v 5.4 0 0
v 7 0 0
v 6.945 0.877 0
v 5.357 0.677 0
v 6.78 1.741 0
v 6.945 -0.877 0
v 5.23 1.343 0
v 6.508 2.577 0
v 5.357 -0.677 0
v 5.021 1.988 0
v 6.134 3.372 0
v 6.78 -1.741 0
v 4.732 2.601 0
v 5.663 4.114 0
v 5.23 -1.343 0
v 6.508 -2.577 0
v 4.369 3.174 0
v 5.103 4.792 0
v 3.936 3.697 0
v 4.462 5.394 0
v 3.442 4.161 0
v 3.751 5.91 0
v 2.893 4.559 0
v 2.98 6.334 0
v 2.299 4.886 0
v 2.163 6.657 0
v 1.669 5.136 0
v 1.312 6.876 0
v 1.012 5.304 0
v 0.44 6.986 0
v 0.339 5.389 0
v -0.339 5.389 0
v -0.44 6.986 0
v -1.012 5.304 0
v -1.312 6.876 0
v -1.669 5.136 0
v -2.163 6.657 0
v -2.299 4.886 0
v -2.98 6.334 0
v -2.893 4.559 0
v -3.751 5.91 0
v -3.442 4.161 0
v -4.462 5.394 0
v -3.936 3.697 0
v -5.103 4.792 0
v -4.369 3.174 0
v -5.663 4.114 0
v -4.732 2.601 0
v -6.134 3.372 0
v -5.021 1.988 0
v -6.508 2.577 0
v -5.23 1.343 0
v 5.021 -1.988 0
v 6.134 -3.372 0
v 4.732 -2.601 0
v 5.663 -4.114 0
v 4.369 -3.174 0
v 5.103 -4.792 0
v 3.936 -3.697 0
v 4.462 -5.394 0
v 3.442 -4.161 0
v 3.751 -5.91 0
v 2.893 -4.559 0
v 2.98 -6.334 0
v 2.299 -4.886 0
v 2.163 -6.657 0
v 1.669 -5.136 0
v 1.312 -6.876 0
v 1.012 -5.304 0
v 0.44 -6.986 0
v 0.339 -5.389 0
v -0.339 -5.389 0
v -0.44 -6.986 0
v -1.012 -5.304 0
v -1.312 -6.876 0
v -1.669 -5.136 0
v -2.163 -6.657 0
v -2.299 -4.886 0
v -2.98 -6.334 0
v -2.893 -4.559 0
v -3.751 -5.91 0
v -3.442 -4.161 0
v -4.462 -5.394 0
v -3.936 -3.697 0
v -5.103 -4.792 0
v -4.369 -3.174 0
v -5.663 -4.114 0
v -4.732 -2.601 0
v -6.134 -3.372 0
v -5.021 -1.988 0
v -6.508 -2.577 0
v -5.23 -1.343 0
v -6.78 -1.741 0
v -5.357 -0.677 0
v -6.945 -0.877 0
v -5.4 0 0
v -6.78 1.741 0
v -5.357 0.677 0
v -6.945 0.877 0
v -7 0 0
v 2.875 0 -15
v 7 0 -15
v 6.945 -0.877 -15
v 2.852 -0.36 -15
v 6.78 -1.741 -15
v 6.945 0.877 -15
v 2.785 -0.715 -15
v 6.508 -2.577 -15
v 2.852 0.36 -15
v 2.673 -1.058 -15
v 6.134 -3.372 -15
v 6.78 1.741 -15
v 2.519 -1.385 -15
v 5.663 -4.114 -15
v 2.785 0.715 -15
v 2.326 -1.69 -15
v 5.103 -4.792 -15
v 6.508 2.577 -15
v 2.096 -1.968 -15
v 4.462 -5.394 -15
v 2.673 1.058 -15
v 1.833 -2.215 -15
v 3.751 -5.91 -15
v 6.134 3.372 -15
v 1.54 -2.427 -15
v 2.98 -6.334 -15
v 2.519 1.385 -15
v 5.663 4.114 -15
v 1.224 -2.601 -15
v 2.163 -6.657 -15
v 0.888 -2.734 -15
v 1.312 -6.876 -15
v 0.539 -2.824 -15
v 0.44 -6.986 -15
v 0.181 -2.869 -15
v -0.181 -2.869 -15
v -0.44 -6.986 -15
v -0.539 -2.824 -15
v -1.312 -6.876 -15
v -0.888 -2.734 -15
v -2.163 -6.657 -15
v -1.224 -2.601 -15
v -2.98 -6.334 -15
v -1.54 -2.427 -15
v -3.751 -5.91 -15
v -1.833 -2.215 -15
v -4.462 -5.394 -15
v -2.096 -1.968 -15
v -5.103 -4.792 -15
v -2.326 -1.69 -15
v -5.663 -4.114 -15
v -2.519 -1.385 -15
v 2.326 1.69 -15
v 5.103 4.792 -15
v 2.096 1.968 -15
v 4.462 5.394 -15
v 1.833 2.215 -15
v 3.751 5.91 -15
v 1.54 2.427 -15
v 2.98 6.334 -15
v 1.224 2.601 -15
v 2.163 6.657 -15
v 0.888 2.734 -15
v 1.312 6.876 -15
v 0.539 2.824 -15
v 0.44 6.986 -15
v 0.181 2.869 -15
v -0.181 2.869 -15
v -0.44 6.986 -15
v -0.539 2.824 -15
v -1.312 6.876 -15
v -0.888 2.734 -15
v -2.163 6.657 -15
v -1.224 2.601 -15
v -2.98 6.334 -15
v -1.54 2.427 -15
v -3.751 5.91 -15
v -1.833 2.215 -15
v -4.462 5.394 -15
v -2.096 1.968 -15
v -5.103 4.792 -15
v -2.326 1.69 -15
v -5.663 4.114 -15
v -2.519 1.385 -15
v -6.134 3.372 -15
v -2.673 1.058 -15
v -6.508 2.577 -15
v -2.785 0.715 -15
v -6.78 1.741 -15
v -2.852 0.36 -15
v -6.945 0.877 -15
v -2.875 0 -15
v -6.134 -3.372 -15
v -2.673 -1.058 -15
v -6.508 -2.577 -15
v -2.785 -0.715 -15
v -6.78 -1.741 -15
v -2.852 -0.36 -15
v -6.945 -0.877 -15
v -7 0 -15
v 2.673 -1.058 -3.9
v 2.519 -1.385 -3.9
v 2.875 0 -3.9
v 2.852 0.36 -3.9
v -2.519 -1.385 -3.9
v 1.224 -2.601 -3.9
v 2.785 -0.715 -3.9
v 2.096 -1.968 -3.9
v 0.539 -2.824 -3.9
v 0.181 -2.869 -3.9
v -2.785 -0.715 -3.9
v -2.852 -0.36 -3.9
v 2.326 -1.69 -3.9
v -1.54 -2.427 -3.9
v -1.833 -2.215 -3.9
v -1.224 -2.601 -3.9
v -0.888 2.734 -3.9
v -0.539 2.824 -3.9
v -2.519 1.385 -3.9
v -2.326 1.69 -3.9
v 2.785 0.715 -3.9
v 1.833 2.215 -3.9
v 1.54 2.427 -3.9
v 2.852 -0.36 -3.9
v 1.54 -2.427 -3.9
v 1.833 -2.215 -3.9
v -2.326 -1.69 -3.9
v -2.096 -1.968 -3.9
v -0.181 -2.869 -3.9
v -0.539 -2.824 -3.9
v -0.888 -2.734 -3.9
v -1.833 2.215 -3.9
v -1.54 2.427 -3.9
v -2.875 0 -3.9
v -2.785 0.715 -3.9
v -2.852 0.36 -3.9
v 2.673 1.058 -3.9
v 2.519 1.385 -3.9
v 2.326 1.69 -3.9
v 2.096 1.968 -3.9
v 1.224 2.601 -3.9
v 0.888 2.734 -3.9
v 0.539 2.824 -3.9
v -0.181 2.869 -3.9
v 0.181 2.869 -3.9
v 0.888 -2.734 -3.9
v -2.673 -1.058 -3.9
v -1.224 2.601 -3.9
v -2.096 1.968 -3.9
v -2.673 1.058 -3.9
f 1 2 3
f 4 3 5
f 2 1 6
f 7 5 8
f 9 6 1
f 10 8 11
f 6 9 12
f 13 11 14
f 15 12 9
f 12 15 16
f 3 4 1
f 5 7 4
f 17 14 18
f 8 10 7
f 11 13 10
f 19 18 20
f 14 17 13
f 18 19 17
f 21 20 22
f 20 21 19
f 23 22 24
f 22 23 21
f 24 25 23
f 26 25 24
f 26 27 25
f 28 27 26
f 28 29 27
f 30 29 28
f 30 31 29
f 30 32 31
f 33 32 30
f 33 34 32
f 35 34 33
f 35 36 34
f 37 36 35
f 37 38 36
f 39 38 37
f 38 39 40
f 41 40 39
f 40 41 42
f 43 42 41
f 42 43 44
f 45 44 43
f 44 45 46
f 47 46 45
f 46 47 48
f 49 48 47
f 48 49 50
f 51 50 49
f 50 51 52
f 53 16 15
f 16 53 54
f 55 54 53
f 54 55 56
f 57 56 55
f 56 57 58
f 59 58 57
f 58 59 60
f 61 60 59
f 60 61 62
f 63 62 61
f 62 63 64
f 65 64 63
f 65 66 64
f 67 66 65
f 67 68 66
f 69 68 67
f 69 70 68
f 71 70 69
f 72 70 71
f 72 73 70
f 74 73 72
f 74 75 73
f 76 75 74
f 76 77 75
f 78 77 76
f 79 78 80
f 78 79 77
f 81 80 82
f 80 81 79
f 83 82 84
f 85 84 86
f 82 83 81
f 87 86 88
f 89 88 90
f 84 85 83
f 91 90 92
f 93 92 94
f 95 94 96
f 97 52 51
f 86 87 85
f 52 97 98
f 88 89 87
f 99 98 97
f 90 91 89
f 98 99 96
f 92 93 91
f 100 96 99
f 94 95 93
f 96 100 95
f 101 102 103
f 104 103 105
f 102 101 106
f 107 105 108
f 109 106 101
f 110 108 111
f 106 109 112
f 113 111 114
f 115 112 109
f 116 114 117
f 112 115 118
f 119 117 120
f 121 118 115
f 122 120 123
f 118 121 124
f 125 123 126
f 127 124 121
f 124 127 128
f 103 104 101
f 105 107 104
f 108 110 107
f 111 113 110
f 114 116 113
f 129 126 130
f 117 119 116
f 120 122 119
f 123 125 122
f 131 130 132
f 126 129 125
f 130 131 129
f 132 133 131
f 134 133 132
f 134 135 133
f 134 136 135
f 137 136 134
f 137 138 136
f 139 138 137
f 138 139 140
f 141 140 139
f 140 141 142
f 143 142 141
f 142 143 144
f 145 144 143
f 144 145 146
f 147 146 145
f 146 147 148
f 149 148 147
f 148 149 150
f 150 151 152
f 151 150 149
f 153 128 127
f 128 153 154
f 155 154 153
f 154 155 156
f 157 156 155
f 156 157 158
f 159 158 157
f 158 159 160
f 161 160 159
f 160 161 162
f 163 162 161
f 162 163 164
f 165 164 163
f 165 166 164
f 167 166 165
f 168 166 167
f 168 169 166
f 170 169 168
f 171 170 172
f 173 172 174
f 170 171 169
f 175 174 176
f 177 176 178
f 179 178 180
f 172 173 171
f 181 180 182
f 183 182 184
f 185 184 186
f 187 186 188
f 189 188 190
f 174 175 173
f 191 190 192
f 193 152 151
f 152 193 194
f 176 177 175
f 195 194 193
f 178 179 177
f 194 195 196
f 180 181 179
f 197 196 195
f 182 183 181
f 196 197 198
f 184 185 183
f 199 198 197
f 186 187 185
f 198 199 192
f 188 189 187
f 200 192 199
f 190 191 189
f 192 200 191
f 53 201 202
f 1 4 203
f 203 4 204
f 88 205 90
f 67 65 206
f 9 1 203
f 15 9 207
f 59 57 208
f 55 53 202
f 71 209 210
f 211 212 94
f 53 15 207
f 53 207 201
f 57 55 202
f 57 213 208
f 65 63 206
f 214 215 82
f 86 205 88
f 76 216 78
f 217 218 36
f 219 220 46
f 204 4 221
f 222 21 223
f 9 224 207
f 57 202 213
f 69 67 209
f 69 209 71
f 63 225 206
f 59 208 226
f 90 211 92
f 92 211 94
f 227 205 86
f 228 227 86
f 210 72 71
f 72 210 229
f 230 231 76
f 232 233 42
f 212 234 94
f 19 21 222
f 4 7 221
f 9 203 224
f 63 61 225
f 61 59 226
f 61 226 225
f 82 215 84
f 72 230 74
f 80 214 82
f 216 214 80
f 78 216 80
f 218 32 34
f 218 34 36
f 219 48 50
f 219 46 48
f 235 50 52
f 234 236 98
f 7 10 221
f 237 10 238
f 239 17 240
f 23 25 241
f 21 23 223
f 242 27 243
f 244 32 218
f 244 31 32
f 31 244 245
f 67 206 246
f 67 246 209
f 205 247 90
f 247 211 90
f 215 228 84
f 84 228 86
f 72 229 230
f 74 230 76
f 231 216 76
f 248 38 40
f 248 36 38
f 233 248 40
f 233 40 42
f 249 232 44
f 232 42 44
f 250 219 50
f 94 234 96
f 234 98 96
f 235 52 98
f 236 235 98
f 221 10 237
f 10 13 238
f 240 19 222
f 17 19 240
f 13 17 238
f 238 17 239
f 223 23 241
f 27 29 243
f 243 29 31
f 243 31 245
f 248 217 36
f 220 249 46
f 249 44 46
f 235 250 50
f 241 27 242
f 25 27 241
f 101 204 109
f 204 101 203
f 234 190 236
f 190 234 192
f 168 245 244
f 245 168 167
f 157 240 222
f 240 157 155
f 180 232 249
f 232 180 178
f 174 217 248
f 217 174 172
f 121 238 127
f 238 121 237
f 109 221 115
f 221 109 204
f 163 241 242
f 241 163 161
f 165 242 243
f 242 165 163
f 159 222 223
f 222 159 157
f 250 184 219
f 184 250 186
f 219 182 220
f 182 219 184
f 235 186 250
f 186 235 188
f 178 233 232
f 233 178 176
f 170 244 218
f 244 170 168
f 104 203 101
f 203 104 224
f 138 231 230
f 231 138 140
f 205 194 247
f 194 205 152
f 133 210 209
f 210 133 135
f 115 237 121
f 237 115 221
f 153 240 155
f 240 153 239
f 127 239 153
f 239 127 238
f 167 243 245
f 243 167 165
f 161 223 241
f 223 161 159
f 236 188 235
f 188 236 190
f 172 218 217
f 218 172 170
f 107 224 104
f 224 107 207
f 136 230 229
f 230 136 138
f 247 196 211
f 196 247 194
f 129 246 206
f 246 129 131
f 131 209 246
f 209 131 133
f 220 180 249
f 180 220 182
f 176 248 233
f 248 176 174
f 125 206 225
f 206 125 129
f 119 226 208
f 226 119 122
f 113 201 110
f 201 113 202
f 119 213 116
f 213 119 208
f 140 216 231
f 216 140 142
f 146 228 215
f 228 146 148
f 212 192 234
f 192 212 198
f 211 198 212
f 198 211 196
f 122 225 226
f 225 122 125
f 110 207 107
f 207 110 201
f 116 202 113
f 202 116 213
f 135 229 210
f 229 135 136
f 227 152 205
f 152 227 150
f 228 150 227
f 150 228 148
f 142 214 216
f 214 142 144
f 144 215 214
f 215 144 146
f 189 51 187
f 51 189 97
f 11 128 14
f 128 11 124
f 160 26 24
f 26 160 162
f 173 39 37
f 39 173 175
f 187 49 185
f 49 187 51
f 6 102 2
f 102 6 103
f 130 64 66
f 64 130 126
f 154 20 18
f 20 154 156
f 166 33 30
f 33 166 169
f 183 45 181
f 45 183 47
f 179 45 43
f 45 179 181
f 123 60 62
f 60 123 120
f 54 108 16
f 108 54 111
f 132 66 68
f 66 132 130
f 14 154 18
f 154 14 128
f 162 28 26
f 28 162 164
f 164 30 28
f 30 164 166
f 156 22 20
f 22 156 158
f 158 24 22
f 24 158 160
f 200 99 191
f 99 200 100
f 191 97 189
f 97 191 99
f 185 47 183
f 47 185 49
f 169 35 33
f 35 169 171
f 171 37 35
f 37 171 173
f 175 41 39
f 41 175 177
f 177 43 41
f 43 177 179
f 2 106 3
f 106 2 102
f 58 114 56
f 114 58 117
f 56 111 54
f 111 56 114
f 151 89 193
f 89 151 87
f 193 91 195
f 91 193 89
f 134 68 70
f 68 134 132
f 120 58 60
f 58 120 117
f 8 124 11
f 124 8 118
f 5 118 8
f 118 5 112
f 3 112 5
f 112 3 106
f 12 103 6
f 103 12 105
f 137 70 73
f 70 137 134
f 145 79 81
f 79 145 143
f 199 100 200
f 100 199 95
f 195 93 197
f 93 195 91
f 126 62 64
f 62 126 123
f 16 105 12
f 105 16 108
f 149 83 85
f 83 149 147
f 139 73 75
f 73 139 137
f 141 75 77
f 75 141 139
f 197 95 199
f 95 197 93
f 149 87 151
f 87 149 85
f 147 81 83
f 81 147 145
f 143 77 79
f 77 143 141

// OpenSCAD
$fn = 50;


difference() {
	union() {
		translate(v = [0, 0, -15.0000000000]) {
			cylinder(h = 15, r = 7.0000000000);
		}
		cylinder(h = 0, r = 13.0000000000);
	}
	union() {
		translate(v = [0, 0, 0]) {
			rotate(a = [0, 0, 0]) {
				difference() {
					union() {
						#translate(v = [0, 0, -15.0000000000]) {
							cylinder(h = 15, r = 2.6000000000);
						}
						#translate(v = [0, 0, -3.9000000000]) {
							cylinder(h = 3.9000000000, r = 7.0000000000, r1 = 2.8750000000, r2 = 5.4000000000);
						}
						#translate(v = [0, 0, -15.0000000000]) {
							cylinder(h = 15, r = 2.8750000000);
						}
						#translate(v = [0, 0, -15.0000000000]) {
							cylinder(h = 15, r = 2.6000000000);
						}
					}
					union();
				}
			}
		}
	}
}
